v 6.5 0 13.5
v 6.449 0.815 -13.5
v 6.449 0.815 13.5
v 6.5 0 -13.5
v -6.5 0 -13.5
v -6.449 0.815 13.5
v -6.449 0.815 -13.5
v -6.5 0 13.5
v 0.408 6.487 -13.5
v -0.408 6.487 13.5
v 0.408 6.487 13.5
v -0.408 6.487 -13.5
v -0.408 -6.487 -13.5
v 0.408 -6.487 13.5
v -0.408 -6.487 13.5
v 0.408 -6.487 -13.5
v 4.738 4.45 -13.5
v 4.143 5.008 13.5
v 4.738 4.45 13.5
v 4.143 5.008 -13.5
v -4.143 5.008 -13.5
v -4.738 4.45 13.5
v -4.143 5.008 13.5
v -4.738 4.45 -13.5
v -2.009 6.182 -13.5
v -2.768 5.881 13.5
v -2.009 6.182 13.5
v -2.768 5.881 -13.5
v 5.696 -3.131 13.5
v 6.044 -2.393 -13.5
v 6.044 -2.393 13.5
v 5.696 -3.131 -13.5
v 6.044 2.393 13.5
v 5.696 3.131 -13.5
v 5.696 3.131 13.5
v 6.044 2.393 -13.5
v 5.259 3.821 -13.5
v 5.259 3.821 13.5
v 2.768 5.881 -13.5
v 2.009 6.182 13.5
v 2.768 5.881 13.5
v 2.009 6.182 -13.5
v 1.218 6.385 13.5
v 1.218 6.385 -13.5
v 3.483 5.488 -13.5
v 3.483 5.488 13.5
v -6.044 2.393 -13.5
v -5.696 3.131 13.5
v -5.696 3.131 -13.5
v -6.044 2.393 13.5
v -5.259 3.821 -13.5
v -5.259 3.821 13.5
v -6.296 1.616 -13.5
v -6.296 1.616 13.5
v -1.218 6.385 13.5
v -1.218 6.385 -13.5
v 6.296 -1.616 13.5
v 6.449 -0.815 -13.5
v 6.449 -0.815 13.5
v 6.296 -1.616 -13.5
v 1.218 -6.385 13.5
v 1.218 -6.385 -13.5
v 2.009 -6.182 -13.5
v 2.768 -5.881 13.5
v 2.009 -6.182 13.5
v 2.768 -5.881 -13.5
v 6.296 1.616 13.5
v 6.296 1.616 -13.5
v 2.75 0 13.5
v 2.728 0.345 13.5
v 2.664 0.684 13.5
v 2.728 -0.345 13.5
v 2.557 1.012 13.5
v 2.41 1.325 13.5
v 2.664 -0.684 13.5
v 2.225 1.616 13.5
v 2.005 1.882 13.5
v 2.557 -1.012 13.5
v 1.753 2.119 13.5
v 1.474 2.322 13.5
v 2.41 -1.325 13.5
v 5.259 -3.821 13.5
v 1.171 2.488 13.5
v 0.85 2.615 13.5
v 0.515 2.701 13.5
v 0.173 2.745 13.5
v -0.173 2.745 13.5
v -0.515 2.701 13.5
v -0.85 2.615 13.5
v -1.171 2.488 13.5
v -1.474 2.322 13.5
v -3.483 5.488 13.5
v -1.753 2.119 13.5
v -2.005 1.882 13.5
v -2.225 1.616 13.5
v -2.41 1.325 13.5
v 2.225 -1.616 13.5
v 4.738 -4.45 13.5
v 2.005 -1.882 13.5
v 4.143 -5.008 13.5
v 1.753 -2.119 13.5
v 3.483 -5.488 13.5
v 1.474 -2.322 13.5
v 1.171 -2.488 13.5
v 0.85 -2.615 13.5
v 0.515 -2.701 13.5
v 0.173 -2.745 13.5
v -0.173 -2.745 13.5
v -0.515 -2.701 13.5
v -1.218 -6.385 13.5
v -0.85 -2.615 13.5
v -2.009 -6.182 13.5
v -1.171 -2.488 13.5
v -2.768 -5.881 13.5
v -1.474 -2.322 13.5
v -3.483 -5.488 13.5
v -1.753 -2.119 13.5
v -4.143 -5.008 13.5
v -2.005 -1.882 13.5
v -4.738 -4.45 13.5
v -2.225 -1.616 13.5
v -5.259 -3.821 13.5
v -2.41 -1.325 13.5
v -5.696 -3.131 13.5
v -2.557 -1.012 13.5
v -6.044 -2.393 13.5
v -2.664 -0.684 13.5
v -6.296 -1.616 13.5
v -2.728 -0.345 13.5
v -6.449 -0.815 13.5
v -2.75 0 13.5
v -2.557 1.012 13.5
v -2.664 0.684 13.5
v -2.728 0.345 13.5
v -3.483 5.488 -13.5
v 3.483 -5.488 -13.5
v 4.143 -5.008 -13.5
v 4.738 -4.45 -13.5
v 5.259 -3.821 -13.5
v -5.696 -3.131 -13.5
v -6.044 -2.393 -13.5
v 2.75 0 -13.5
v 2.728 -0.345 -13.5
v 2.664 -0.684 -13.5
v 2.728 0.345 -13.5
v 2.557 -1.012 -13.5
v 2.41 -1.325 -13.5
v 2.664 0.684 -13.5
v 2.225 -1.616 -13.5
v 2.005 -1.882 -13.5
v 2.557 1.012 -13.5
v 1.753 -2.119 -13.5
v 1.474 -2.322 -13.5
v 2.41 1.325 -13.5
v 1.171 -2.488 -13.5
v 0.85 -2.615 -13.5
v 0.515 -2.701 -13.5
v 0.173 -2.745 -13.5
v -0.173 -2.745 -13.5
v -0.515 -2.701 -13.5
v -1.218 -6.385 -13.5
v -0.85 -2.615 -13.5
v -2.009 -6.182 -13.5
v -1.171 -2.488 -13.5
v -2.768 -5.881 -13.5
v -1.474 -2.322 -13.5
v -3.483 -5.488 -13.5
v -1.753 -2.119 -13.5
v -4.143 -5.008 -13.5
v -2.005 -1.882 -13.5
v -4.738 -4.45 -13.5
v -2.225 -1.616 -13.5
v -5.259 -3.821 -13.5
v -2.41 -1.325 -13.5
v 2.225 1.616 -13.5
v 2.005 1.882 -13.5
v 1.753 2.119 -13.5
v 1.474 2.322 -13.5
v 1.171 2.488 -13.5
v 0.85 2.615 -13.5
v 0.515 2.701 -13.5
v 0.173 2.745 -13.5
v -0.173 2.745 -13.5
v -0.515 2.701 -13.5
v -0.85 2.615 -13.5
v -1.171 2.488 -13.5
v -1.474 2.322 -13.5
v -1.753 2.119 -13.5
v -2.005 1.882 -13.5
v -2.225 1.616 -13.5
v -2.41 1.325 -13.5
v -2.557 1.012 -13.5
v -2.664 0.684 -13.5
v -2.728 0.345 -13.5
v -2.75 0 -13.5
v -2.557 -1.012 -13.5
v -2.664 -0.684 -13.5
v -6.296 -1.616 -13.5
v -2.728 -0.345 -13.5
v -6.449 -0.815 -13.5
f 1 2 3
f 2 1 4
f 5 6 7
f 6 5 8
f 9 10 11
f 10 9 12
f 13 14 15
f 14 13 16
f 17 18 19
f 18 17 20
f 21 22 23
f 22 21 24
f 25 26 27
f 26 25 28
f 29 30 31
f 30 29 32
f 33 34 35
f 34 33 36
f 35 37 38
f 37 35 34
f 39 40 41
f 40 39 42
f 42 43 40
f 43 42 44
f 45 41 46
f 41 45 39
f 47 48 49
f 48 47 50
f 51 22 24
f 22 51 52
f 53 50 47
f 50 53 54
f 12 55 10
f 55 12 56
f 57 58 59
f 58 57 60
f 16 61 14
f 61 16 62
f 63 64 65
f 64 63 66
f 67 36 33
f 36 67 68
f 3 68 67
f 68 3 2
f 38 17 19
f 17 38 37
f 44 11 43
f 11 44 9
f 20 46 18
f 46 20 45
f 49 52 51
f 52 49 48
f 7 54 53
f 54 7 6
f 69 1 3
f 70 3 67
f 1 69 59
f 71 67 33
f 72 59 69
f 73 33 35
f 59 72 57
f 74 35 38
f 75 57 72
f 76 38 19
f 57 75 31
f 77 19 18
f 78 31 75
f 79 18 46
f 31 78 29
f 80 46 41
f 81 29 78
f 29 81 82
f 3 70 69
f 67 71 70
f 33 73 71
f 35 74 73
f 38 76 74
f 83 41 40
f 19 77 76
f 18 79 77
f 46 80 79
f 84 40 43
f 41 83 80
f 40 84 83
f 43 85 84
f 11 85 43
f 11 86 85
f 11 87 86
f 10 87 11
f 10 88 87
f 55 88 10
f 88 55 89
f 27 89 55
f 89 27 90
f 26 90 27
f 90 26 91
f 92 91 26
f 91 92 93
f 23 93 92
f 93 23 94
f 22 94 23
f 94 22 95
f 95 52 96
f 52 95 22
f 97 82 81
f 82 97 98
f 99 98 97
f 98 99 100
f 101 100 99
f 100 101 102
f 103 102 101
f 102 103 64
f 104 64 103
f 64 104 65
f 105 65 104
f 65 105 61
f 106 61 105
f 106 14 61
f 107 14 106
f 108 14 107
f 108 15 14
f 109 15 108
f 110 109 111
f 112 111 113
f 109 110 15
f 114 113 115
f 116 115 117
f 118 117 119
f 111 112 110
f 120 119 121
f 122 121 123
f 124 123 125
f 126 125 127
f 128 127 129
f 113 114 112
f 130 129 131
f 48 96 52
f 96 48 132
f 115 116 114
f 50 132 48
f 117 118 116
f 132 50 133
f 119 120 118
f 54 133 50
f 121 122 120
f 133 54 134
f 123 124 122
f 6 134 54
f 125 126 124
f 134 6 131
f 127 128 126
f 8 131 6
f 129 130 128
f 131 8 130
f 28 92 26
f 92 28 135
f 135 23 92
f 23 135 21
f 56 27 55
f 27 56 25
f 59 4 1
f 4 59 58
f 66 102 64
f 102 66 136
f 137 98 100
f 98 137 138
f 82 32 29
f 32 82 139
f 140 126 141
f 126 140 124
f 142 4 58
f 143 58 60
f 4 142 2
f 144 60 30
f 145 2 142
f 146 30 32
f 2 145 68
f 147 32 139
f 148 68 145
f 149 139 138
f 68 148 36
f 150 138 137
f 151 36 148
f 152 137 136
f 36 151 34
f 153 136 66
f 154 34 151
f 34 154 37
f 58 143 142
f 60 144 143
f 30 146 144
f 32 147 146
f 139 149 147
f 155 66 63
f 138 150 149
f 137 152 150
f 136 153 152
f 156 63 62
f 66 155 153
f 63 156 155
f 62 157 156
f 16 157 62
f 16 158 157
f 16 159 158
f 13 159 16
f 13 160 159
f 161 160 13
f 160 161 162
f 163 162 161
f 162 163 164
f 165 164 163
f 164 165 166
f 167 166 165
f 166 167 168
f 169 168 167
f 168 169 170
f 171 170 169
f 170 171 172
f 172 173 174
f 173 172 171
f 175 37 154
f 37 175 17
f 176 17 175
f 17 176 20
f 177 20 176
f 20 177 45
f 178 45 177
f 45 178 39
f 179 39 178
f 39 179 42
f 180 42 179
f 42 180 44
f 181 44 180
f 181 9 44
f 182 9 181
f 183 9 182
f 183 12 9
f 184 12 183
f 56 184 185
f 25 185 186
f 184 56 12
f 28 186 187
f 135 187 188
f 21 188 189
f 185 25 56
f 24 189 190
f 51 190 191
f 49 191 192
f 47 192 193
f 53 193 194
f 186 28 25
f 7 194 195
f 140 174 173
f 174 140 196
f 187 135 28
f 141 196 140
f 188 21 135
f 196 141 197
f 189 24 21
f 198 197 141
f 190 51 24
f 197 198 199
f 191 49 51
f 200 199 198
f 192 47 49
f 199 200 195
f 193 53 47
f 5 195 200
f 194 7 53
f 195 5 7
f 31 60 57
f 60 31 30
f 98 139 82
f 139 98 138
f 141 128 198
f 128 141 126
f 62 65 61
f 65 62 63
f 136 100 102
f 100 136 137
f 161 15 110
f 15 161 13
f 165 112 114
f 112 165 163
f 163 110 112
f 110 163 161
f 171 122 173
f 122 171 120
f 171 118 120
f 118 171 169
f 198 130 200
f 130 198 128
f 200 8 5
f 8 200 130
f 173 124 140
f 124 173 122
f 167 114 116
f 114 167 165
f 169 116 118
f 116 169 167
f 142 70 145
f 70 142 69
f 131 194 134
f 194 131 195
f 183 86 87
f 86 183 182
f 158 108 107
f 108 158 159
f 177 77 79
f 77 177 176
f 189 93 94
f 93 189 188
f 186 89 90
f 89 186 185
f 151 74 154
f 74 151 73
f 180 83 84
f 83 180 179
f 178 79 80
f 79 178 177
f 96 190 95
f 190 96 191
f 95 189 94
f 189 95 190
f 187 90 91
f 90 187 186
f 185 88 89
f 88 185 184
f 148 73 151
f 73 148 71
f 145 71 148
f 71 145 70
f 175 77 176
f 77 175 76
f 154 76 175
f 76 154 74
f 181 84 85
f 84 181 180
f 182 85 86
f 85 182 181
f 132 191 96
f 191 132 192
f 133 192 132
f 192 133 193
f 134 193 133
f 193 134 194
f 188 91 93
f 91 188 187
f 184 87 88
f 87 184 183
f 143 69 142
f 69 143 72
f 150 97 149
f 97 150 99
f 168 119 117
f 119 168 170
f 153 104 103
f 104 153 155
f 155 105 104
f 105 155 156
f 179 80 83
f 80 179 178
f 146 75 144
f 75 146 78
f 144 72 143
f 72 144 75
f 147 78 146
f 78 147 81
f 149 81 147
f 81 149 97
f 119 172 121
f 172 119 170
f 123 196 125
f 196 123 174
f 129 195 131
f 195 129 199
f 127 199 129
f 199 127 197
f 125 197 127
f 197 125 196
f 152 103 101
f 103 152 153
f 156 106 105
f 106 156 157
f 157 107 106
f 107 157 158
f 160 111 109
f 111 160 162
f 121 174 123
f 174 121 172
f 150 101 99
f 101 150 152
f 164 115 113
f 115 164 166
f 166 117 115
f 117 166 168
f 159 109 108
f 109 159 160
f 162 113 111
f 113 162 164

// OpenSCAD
$fn = 50;


difference() {
	union() {
		translate(v = [0, 0, -13.5000000000]) {
			cylinder(h = 27, r = 6.5000000000);
		}
	}
	union() {
		translate(v = [0, 0, -100.0000000000]) {
			cylinder(h = 200, r = 2.7500000000);
		}
	}
}
